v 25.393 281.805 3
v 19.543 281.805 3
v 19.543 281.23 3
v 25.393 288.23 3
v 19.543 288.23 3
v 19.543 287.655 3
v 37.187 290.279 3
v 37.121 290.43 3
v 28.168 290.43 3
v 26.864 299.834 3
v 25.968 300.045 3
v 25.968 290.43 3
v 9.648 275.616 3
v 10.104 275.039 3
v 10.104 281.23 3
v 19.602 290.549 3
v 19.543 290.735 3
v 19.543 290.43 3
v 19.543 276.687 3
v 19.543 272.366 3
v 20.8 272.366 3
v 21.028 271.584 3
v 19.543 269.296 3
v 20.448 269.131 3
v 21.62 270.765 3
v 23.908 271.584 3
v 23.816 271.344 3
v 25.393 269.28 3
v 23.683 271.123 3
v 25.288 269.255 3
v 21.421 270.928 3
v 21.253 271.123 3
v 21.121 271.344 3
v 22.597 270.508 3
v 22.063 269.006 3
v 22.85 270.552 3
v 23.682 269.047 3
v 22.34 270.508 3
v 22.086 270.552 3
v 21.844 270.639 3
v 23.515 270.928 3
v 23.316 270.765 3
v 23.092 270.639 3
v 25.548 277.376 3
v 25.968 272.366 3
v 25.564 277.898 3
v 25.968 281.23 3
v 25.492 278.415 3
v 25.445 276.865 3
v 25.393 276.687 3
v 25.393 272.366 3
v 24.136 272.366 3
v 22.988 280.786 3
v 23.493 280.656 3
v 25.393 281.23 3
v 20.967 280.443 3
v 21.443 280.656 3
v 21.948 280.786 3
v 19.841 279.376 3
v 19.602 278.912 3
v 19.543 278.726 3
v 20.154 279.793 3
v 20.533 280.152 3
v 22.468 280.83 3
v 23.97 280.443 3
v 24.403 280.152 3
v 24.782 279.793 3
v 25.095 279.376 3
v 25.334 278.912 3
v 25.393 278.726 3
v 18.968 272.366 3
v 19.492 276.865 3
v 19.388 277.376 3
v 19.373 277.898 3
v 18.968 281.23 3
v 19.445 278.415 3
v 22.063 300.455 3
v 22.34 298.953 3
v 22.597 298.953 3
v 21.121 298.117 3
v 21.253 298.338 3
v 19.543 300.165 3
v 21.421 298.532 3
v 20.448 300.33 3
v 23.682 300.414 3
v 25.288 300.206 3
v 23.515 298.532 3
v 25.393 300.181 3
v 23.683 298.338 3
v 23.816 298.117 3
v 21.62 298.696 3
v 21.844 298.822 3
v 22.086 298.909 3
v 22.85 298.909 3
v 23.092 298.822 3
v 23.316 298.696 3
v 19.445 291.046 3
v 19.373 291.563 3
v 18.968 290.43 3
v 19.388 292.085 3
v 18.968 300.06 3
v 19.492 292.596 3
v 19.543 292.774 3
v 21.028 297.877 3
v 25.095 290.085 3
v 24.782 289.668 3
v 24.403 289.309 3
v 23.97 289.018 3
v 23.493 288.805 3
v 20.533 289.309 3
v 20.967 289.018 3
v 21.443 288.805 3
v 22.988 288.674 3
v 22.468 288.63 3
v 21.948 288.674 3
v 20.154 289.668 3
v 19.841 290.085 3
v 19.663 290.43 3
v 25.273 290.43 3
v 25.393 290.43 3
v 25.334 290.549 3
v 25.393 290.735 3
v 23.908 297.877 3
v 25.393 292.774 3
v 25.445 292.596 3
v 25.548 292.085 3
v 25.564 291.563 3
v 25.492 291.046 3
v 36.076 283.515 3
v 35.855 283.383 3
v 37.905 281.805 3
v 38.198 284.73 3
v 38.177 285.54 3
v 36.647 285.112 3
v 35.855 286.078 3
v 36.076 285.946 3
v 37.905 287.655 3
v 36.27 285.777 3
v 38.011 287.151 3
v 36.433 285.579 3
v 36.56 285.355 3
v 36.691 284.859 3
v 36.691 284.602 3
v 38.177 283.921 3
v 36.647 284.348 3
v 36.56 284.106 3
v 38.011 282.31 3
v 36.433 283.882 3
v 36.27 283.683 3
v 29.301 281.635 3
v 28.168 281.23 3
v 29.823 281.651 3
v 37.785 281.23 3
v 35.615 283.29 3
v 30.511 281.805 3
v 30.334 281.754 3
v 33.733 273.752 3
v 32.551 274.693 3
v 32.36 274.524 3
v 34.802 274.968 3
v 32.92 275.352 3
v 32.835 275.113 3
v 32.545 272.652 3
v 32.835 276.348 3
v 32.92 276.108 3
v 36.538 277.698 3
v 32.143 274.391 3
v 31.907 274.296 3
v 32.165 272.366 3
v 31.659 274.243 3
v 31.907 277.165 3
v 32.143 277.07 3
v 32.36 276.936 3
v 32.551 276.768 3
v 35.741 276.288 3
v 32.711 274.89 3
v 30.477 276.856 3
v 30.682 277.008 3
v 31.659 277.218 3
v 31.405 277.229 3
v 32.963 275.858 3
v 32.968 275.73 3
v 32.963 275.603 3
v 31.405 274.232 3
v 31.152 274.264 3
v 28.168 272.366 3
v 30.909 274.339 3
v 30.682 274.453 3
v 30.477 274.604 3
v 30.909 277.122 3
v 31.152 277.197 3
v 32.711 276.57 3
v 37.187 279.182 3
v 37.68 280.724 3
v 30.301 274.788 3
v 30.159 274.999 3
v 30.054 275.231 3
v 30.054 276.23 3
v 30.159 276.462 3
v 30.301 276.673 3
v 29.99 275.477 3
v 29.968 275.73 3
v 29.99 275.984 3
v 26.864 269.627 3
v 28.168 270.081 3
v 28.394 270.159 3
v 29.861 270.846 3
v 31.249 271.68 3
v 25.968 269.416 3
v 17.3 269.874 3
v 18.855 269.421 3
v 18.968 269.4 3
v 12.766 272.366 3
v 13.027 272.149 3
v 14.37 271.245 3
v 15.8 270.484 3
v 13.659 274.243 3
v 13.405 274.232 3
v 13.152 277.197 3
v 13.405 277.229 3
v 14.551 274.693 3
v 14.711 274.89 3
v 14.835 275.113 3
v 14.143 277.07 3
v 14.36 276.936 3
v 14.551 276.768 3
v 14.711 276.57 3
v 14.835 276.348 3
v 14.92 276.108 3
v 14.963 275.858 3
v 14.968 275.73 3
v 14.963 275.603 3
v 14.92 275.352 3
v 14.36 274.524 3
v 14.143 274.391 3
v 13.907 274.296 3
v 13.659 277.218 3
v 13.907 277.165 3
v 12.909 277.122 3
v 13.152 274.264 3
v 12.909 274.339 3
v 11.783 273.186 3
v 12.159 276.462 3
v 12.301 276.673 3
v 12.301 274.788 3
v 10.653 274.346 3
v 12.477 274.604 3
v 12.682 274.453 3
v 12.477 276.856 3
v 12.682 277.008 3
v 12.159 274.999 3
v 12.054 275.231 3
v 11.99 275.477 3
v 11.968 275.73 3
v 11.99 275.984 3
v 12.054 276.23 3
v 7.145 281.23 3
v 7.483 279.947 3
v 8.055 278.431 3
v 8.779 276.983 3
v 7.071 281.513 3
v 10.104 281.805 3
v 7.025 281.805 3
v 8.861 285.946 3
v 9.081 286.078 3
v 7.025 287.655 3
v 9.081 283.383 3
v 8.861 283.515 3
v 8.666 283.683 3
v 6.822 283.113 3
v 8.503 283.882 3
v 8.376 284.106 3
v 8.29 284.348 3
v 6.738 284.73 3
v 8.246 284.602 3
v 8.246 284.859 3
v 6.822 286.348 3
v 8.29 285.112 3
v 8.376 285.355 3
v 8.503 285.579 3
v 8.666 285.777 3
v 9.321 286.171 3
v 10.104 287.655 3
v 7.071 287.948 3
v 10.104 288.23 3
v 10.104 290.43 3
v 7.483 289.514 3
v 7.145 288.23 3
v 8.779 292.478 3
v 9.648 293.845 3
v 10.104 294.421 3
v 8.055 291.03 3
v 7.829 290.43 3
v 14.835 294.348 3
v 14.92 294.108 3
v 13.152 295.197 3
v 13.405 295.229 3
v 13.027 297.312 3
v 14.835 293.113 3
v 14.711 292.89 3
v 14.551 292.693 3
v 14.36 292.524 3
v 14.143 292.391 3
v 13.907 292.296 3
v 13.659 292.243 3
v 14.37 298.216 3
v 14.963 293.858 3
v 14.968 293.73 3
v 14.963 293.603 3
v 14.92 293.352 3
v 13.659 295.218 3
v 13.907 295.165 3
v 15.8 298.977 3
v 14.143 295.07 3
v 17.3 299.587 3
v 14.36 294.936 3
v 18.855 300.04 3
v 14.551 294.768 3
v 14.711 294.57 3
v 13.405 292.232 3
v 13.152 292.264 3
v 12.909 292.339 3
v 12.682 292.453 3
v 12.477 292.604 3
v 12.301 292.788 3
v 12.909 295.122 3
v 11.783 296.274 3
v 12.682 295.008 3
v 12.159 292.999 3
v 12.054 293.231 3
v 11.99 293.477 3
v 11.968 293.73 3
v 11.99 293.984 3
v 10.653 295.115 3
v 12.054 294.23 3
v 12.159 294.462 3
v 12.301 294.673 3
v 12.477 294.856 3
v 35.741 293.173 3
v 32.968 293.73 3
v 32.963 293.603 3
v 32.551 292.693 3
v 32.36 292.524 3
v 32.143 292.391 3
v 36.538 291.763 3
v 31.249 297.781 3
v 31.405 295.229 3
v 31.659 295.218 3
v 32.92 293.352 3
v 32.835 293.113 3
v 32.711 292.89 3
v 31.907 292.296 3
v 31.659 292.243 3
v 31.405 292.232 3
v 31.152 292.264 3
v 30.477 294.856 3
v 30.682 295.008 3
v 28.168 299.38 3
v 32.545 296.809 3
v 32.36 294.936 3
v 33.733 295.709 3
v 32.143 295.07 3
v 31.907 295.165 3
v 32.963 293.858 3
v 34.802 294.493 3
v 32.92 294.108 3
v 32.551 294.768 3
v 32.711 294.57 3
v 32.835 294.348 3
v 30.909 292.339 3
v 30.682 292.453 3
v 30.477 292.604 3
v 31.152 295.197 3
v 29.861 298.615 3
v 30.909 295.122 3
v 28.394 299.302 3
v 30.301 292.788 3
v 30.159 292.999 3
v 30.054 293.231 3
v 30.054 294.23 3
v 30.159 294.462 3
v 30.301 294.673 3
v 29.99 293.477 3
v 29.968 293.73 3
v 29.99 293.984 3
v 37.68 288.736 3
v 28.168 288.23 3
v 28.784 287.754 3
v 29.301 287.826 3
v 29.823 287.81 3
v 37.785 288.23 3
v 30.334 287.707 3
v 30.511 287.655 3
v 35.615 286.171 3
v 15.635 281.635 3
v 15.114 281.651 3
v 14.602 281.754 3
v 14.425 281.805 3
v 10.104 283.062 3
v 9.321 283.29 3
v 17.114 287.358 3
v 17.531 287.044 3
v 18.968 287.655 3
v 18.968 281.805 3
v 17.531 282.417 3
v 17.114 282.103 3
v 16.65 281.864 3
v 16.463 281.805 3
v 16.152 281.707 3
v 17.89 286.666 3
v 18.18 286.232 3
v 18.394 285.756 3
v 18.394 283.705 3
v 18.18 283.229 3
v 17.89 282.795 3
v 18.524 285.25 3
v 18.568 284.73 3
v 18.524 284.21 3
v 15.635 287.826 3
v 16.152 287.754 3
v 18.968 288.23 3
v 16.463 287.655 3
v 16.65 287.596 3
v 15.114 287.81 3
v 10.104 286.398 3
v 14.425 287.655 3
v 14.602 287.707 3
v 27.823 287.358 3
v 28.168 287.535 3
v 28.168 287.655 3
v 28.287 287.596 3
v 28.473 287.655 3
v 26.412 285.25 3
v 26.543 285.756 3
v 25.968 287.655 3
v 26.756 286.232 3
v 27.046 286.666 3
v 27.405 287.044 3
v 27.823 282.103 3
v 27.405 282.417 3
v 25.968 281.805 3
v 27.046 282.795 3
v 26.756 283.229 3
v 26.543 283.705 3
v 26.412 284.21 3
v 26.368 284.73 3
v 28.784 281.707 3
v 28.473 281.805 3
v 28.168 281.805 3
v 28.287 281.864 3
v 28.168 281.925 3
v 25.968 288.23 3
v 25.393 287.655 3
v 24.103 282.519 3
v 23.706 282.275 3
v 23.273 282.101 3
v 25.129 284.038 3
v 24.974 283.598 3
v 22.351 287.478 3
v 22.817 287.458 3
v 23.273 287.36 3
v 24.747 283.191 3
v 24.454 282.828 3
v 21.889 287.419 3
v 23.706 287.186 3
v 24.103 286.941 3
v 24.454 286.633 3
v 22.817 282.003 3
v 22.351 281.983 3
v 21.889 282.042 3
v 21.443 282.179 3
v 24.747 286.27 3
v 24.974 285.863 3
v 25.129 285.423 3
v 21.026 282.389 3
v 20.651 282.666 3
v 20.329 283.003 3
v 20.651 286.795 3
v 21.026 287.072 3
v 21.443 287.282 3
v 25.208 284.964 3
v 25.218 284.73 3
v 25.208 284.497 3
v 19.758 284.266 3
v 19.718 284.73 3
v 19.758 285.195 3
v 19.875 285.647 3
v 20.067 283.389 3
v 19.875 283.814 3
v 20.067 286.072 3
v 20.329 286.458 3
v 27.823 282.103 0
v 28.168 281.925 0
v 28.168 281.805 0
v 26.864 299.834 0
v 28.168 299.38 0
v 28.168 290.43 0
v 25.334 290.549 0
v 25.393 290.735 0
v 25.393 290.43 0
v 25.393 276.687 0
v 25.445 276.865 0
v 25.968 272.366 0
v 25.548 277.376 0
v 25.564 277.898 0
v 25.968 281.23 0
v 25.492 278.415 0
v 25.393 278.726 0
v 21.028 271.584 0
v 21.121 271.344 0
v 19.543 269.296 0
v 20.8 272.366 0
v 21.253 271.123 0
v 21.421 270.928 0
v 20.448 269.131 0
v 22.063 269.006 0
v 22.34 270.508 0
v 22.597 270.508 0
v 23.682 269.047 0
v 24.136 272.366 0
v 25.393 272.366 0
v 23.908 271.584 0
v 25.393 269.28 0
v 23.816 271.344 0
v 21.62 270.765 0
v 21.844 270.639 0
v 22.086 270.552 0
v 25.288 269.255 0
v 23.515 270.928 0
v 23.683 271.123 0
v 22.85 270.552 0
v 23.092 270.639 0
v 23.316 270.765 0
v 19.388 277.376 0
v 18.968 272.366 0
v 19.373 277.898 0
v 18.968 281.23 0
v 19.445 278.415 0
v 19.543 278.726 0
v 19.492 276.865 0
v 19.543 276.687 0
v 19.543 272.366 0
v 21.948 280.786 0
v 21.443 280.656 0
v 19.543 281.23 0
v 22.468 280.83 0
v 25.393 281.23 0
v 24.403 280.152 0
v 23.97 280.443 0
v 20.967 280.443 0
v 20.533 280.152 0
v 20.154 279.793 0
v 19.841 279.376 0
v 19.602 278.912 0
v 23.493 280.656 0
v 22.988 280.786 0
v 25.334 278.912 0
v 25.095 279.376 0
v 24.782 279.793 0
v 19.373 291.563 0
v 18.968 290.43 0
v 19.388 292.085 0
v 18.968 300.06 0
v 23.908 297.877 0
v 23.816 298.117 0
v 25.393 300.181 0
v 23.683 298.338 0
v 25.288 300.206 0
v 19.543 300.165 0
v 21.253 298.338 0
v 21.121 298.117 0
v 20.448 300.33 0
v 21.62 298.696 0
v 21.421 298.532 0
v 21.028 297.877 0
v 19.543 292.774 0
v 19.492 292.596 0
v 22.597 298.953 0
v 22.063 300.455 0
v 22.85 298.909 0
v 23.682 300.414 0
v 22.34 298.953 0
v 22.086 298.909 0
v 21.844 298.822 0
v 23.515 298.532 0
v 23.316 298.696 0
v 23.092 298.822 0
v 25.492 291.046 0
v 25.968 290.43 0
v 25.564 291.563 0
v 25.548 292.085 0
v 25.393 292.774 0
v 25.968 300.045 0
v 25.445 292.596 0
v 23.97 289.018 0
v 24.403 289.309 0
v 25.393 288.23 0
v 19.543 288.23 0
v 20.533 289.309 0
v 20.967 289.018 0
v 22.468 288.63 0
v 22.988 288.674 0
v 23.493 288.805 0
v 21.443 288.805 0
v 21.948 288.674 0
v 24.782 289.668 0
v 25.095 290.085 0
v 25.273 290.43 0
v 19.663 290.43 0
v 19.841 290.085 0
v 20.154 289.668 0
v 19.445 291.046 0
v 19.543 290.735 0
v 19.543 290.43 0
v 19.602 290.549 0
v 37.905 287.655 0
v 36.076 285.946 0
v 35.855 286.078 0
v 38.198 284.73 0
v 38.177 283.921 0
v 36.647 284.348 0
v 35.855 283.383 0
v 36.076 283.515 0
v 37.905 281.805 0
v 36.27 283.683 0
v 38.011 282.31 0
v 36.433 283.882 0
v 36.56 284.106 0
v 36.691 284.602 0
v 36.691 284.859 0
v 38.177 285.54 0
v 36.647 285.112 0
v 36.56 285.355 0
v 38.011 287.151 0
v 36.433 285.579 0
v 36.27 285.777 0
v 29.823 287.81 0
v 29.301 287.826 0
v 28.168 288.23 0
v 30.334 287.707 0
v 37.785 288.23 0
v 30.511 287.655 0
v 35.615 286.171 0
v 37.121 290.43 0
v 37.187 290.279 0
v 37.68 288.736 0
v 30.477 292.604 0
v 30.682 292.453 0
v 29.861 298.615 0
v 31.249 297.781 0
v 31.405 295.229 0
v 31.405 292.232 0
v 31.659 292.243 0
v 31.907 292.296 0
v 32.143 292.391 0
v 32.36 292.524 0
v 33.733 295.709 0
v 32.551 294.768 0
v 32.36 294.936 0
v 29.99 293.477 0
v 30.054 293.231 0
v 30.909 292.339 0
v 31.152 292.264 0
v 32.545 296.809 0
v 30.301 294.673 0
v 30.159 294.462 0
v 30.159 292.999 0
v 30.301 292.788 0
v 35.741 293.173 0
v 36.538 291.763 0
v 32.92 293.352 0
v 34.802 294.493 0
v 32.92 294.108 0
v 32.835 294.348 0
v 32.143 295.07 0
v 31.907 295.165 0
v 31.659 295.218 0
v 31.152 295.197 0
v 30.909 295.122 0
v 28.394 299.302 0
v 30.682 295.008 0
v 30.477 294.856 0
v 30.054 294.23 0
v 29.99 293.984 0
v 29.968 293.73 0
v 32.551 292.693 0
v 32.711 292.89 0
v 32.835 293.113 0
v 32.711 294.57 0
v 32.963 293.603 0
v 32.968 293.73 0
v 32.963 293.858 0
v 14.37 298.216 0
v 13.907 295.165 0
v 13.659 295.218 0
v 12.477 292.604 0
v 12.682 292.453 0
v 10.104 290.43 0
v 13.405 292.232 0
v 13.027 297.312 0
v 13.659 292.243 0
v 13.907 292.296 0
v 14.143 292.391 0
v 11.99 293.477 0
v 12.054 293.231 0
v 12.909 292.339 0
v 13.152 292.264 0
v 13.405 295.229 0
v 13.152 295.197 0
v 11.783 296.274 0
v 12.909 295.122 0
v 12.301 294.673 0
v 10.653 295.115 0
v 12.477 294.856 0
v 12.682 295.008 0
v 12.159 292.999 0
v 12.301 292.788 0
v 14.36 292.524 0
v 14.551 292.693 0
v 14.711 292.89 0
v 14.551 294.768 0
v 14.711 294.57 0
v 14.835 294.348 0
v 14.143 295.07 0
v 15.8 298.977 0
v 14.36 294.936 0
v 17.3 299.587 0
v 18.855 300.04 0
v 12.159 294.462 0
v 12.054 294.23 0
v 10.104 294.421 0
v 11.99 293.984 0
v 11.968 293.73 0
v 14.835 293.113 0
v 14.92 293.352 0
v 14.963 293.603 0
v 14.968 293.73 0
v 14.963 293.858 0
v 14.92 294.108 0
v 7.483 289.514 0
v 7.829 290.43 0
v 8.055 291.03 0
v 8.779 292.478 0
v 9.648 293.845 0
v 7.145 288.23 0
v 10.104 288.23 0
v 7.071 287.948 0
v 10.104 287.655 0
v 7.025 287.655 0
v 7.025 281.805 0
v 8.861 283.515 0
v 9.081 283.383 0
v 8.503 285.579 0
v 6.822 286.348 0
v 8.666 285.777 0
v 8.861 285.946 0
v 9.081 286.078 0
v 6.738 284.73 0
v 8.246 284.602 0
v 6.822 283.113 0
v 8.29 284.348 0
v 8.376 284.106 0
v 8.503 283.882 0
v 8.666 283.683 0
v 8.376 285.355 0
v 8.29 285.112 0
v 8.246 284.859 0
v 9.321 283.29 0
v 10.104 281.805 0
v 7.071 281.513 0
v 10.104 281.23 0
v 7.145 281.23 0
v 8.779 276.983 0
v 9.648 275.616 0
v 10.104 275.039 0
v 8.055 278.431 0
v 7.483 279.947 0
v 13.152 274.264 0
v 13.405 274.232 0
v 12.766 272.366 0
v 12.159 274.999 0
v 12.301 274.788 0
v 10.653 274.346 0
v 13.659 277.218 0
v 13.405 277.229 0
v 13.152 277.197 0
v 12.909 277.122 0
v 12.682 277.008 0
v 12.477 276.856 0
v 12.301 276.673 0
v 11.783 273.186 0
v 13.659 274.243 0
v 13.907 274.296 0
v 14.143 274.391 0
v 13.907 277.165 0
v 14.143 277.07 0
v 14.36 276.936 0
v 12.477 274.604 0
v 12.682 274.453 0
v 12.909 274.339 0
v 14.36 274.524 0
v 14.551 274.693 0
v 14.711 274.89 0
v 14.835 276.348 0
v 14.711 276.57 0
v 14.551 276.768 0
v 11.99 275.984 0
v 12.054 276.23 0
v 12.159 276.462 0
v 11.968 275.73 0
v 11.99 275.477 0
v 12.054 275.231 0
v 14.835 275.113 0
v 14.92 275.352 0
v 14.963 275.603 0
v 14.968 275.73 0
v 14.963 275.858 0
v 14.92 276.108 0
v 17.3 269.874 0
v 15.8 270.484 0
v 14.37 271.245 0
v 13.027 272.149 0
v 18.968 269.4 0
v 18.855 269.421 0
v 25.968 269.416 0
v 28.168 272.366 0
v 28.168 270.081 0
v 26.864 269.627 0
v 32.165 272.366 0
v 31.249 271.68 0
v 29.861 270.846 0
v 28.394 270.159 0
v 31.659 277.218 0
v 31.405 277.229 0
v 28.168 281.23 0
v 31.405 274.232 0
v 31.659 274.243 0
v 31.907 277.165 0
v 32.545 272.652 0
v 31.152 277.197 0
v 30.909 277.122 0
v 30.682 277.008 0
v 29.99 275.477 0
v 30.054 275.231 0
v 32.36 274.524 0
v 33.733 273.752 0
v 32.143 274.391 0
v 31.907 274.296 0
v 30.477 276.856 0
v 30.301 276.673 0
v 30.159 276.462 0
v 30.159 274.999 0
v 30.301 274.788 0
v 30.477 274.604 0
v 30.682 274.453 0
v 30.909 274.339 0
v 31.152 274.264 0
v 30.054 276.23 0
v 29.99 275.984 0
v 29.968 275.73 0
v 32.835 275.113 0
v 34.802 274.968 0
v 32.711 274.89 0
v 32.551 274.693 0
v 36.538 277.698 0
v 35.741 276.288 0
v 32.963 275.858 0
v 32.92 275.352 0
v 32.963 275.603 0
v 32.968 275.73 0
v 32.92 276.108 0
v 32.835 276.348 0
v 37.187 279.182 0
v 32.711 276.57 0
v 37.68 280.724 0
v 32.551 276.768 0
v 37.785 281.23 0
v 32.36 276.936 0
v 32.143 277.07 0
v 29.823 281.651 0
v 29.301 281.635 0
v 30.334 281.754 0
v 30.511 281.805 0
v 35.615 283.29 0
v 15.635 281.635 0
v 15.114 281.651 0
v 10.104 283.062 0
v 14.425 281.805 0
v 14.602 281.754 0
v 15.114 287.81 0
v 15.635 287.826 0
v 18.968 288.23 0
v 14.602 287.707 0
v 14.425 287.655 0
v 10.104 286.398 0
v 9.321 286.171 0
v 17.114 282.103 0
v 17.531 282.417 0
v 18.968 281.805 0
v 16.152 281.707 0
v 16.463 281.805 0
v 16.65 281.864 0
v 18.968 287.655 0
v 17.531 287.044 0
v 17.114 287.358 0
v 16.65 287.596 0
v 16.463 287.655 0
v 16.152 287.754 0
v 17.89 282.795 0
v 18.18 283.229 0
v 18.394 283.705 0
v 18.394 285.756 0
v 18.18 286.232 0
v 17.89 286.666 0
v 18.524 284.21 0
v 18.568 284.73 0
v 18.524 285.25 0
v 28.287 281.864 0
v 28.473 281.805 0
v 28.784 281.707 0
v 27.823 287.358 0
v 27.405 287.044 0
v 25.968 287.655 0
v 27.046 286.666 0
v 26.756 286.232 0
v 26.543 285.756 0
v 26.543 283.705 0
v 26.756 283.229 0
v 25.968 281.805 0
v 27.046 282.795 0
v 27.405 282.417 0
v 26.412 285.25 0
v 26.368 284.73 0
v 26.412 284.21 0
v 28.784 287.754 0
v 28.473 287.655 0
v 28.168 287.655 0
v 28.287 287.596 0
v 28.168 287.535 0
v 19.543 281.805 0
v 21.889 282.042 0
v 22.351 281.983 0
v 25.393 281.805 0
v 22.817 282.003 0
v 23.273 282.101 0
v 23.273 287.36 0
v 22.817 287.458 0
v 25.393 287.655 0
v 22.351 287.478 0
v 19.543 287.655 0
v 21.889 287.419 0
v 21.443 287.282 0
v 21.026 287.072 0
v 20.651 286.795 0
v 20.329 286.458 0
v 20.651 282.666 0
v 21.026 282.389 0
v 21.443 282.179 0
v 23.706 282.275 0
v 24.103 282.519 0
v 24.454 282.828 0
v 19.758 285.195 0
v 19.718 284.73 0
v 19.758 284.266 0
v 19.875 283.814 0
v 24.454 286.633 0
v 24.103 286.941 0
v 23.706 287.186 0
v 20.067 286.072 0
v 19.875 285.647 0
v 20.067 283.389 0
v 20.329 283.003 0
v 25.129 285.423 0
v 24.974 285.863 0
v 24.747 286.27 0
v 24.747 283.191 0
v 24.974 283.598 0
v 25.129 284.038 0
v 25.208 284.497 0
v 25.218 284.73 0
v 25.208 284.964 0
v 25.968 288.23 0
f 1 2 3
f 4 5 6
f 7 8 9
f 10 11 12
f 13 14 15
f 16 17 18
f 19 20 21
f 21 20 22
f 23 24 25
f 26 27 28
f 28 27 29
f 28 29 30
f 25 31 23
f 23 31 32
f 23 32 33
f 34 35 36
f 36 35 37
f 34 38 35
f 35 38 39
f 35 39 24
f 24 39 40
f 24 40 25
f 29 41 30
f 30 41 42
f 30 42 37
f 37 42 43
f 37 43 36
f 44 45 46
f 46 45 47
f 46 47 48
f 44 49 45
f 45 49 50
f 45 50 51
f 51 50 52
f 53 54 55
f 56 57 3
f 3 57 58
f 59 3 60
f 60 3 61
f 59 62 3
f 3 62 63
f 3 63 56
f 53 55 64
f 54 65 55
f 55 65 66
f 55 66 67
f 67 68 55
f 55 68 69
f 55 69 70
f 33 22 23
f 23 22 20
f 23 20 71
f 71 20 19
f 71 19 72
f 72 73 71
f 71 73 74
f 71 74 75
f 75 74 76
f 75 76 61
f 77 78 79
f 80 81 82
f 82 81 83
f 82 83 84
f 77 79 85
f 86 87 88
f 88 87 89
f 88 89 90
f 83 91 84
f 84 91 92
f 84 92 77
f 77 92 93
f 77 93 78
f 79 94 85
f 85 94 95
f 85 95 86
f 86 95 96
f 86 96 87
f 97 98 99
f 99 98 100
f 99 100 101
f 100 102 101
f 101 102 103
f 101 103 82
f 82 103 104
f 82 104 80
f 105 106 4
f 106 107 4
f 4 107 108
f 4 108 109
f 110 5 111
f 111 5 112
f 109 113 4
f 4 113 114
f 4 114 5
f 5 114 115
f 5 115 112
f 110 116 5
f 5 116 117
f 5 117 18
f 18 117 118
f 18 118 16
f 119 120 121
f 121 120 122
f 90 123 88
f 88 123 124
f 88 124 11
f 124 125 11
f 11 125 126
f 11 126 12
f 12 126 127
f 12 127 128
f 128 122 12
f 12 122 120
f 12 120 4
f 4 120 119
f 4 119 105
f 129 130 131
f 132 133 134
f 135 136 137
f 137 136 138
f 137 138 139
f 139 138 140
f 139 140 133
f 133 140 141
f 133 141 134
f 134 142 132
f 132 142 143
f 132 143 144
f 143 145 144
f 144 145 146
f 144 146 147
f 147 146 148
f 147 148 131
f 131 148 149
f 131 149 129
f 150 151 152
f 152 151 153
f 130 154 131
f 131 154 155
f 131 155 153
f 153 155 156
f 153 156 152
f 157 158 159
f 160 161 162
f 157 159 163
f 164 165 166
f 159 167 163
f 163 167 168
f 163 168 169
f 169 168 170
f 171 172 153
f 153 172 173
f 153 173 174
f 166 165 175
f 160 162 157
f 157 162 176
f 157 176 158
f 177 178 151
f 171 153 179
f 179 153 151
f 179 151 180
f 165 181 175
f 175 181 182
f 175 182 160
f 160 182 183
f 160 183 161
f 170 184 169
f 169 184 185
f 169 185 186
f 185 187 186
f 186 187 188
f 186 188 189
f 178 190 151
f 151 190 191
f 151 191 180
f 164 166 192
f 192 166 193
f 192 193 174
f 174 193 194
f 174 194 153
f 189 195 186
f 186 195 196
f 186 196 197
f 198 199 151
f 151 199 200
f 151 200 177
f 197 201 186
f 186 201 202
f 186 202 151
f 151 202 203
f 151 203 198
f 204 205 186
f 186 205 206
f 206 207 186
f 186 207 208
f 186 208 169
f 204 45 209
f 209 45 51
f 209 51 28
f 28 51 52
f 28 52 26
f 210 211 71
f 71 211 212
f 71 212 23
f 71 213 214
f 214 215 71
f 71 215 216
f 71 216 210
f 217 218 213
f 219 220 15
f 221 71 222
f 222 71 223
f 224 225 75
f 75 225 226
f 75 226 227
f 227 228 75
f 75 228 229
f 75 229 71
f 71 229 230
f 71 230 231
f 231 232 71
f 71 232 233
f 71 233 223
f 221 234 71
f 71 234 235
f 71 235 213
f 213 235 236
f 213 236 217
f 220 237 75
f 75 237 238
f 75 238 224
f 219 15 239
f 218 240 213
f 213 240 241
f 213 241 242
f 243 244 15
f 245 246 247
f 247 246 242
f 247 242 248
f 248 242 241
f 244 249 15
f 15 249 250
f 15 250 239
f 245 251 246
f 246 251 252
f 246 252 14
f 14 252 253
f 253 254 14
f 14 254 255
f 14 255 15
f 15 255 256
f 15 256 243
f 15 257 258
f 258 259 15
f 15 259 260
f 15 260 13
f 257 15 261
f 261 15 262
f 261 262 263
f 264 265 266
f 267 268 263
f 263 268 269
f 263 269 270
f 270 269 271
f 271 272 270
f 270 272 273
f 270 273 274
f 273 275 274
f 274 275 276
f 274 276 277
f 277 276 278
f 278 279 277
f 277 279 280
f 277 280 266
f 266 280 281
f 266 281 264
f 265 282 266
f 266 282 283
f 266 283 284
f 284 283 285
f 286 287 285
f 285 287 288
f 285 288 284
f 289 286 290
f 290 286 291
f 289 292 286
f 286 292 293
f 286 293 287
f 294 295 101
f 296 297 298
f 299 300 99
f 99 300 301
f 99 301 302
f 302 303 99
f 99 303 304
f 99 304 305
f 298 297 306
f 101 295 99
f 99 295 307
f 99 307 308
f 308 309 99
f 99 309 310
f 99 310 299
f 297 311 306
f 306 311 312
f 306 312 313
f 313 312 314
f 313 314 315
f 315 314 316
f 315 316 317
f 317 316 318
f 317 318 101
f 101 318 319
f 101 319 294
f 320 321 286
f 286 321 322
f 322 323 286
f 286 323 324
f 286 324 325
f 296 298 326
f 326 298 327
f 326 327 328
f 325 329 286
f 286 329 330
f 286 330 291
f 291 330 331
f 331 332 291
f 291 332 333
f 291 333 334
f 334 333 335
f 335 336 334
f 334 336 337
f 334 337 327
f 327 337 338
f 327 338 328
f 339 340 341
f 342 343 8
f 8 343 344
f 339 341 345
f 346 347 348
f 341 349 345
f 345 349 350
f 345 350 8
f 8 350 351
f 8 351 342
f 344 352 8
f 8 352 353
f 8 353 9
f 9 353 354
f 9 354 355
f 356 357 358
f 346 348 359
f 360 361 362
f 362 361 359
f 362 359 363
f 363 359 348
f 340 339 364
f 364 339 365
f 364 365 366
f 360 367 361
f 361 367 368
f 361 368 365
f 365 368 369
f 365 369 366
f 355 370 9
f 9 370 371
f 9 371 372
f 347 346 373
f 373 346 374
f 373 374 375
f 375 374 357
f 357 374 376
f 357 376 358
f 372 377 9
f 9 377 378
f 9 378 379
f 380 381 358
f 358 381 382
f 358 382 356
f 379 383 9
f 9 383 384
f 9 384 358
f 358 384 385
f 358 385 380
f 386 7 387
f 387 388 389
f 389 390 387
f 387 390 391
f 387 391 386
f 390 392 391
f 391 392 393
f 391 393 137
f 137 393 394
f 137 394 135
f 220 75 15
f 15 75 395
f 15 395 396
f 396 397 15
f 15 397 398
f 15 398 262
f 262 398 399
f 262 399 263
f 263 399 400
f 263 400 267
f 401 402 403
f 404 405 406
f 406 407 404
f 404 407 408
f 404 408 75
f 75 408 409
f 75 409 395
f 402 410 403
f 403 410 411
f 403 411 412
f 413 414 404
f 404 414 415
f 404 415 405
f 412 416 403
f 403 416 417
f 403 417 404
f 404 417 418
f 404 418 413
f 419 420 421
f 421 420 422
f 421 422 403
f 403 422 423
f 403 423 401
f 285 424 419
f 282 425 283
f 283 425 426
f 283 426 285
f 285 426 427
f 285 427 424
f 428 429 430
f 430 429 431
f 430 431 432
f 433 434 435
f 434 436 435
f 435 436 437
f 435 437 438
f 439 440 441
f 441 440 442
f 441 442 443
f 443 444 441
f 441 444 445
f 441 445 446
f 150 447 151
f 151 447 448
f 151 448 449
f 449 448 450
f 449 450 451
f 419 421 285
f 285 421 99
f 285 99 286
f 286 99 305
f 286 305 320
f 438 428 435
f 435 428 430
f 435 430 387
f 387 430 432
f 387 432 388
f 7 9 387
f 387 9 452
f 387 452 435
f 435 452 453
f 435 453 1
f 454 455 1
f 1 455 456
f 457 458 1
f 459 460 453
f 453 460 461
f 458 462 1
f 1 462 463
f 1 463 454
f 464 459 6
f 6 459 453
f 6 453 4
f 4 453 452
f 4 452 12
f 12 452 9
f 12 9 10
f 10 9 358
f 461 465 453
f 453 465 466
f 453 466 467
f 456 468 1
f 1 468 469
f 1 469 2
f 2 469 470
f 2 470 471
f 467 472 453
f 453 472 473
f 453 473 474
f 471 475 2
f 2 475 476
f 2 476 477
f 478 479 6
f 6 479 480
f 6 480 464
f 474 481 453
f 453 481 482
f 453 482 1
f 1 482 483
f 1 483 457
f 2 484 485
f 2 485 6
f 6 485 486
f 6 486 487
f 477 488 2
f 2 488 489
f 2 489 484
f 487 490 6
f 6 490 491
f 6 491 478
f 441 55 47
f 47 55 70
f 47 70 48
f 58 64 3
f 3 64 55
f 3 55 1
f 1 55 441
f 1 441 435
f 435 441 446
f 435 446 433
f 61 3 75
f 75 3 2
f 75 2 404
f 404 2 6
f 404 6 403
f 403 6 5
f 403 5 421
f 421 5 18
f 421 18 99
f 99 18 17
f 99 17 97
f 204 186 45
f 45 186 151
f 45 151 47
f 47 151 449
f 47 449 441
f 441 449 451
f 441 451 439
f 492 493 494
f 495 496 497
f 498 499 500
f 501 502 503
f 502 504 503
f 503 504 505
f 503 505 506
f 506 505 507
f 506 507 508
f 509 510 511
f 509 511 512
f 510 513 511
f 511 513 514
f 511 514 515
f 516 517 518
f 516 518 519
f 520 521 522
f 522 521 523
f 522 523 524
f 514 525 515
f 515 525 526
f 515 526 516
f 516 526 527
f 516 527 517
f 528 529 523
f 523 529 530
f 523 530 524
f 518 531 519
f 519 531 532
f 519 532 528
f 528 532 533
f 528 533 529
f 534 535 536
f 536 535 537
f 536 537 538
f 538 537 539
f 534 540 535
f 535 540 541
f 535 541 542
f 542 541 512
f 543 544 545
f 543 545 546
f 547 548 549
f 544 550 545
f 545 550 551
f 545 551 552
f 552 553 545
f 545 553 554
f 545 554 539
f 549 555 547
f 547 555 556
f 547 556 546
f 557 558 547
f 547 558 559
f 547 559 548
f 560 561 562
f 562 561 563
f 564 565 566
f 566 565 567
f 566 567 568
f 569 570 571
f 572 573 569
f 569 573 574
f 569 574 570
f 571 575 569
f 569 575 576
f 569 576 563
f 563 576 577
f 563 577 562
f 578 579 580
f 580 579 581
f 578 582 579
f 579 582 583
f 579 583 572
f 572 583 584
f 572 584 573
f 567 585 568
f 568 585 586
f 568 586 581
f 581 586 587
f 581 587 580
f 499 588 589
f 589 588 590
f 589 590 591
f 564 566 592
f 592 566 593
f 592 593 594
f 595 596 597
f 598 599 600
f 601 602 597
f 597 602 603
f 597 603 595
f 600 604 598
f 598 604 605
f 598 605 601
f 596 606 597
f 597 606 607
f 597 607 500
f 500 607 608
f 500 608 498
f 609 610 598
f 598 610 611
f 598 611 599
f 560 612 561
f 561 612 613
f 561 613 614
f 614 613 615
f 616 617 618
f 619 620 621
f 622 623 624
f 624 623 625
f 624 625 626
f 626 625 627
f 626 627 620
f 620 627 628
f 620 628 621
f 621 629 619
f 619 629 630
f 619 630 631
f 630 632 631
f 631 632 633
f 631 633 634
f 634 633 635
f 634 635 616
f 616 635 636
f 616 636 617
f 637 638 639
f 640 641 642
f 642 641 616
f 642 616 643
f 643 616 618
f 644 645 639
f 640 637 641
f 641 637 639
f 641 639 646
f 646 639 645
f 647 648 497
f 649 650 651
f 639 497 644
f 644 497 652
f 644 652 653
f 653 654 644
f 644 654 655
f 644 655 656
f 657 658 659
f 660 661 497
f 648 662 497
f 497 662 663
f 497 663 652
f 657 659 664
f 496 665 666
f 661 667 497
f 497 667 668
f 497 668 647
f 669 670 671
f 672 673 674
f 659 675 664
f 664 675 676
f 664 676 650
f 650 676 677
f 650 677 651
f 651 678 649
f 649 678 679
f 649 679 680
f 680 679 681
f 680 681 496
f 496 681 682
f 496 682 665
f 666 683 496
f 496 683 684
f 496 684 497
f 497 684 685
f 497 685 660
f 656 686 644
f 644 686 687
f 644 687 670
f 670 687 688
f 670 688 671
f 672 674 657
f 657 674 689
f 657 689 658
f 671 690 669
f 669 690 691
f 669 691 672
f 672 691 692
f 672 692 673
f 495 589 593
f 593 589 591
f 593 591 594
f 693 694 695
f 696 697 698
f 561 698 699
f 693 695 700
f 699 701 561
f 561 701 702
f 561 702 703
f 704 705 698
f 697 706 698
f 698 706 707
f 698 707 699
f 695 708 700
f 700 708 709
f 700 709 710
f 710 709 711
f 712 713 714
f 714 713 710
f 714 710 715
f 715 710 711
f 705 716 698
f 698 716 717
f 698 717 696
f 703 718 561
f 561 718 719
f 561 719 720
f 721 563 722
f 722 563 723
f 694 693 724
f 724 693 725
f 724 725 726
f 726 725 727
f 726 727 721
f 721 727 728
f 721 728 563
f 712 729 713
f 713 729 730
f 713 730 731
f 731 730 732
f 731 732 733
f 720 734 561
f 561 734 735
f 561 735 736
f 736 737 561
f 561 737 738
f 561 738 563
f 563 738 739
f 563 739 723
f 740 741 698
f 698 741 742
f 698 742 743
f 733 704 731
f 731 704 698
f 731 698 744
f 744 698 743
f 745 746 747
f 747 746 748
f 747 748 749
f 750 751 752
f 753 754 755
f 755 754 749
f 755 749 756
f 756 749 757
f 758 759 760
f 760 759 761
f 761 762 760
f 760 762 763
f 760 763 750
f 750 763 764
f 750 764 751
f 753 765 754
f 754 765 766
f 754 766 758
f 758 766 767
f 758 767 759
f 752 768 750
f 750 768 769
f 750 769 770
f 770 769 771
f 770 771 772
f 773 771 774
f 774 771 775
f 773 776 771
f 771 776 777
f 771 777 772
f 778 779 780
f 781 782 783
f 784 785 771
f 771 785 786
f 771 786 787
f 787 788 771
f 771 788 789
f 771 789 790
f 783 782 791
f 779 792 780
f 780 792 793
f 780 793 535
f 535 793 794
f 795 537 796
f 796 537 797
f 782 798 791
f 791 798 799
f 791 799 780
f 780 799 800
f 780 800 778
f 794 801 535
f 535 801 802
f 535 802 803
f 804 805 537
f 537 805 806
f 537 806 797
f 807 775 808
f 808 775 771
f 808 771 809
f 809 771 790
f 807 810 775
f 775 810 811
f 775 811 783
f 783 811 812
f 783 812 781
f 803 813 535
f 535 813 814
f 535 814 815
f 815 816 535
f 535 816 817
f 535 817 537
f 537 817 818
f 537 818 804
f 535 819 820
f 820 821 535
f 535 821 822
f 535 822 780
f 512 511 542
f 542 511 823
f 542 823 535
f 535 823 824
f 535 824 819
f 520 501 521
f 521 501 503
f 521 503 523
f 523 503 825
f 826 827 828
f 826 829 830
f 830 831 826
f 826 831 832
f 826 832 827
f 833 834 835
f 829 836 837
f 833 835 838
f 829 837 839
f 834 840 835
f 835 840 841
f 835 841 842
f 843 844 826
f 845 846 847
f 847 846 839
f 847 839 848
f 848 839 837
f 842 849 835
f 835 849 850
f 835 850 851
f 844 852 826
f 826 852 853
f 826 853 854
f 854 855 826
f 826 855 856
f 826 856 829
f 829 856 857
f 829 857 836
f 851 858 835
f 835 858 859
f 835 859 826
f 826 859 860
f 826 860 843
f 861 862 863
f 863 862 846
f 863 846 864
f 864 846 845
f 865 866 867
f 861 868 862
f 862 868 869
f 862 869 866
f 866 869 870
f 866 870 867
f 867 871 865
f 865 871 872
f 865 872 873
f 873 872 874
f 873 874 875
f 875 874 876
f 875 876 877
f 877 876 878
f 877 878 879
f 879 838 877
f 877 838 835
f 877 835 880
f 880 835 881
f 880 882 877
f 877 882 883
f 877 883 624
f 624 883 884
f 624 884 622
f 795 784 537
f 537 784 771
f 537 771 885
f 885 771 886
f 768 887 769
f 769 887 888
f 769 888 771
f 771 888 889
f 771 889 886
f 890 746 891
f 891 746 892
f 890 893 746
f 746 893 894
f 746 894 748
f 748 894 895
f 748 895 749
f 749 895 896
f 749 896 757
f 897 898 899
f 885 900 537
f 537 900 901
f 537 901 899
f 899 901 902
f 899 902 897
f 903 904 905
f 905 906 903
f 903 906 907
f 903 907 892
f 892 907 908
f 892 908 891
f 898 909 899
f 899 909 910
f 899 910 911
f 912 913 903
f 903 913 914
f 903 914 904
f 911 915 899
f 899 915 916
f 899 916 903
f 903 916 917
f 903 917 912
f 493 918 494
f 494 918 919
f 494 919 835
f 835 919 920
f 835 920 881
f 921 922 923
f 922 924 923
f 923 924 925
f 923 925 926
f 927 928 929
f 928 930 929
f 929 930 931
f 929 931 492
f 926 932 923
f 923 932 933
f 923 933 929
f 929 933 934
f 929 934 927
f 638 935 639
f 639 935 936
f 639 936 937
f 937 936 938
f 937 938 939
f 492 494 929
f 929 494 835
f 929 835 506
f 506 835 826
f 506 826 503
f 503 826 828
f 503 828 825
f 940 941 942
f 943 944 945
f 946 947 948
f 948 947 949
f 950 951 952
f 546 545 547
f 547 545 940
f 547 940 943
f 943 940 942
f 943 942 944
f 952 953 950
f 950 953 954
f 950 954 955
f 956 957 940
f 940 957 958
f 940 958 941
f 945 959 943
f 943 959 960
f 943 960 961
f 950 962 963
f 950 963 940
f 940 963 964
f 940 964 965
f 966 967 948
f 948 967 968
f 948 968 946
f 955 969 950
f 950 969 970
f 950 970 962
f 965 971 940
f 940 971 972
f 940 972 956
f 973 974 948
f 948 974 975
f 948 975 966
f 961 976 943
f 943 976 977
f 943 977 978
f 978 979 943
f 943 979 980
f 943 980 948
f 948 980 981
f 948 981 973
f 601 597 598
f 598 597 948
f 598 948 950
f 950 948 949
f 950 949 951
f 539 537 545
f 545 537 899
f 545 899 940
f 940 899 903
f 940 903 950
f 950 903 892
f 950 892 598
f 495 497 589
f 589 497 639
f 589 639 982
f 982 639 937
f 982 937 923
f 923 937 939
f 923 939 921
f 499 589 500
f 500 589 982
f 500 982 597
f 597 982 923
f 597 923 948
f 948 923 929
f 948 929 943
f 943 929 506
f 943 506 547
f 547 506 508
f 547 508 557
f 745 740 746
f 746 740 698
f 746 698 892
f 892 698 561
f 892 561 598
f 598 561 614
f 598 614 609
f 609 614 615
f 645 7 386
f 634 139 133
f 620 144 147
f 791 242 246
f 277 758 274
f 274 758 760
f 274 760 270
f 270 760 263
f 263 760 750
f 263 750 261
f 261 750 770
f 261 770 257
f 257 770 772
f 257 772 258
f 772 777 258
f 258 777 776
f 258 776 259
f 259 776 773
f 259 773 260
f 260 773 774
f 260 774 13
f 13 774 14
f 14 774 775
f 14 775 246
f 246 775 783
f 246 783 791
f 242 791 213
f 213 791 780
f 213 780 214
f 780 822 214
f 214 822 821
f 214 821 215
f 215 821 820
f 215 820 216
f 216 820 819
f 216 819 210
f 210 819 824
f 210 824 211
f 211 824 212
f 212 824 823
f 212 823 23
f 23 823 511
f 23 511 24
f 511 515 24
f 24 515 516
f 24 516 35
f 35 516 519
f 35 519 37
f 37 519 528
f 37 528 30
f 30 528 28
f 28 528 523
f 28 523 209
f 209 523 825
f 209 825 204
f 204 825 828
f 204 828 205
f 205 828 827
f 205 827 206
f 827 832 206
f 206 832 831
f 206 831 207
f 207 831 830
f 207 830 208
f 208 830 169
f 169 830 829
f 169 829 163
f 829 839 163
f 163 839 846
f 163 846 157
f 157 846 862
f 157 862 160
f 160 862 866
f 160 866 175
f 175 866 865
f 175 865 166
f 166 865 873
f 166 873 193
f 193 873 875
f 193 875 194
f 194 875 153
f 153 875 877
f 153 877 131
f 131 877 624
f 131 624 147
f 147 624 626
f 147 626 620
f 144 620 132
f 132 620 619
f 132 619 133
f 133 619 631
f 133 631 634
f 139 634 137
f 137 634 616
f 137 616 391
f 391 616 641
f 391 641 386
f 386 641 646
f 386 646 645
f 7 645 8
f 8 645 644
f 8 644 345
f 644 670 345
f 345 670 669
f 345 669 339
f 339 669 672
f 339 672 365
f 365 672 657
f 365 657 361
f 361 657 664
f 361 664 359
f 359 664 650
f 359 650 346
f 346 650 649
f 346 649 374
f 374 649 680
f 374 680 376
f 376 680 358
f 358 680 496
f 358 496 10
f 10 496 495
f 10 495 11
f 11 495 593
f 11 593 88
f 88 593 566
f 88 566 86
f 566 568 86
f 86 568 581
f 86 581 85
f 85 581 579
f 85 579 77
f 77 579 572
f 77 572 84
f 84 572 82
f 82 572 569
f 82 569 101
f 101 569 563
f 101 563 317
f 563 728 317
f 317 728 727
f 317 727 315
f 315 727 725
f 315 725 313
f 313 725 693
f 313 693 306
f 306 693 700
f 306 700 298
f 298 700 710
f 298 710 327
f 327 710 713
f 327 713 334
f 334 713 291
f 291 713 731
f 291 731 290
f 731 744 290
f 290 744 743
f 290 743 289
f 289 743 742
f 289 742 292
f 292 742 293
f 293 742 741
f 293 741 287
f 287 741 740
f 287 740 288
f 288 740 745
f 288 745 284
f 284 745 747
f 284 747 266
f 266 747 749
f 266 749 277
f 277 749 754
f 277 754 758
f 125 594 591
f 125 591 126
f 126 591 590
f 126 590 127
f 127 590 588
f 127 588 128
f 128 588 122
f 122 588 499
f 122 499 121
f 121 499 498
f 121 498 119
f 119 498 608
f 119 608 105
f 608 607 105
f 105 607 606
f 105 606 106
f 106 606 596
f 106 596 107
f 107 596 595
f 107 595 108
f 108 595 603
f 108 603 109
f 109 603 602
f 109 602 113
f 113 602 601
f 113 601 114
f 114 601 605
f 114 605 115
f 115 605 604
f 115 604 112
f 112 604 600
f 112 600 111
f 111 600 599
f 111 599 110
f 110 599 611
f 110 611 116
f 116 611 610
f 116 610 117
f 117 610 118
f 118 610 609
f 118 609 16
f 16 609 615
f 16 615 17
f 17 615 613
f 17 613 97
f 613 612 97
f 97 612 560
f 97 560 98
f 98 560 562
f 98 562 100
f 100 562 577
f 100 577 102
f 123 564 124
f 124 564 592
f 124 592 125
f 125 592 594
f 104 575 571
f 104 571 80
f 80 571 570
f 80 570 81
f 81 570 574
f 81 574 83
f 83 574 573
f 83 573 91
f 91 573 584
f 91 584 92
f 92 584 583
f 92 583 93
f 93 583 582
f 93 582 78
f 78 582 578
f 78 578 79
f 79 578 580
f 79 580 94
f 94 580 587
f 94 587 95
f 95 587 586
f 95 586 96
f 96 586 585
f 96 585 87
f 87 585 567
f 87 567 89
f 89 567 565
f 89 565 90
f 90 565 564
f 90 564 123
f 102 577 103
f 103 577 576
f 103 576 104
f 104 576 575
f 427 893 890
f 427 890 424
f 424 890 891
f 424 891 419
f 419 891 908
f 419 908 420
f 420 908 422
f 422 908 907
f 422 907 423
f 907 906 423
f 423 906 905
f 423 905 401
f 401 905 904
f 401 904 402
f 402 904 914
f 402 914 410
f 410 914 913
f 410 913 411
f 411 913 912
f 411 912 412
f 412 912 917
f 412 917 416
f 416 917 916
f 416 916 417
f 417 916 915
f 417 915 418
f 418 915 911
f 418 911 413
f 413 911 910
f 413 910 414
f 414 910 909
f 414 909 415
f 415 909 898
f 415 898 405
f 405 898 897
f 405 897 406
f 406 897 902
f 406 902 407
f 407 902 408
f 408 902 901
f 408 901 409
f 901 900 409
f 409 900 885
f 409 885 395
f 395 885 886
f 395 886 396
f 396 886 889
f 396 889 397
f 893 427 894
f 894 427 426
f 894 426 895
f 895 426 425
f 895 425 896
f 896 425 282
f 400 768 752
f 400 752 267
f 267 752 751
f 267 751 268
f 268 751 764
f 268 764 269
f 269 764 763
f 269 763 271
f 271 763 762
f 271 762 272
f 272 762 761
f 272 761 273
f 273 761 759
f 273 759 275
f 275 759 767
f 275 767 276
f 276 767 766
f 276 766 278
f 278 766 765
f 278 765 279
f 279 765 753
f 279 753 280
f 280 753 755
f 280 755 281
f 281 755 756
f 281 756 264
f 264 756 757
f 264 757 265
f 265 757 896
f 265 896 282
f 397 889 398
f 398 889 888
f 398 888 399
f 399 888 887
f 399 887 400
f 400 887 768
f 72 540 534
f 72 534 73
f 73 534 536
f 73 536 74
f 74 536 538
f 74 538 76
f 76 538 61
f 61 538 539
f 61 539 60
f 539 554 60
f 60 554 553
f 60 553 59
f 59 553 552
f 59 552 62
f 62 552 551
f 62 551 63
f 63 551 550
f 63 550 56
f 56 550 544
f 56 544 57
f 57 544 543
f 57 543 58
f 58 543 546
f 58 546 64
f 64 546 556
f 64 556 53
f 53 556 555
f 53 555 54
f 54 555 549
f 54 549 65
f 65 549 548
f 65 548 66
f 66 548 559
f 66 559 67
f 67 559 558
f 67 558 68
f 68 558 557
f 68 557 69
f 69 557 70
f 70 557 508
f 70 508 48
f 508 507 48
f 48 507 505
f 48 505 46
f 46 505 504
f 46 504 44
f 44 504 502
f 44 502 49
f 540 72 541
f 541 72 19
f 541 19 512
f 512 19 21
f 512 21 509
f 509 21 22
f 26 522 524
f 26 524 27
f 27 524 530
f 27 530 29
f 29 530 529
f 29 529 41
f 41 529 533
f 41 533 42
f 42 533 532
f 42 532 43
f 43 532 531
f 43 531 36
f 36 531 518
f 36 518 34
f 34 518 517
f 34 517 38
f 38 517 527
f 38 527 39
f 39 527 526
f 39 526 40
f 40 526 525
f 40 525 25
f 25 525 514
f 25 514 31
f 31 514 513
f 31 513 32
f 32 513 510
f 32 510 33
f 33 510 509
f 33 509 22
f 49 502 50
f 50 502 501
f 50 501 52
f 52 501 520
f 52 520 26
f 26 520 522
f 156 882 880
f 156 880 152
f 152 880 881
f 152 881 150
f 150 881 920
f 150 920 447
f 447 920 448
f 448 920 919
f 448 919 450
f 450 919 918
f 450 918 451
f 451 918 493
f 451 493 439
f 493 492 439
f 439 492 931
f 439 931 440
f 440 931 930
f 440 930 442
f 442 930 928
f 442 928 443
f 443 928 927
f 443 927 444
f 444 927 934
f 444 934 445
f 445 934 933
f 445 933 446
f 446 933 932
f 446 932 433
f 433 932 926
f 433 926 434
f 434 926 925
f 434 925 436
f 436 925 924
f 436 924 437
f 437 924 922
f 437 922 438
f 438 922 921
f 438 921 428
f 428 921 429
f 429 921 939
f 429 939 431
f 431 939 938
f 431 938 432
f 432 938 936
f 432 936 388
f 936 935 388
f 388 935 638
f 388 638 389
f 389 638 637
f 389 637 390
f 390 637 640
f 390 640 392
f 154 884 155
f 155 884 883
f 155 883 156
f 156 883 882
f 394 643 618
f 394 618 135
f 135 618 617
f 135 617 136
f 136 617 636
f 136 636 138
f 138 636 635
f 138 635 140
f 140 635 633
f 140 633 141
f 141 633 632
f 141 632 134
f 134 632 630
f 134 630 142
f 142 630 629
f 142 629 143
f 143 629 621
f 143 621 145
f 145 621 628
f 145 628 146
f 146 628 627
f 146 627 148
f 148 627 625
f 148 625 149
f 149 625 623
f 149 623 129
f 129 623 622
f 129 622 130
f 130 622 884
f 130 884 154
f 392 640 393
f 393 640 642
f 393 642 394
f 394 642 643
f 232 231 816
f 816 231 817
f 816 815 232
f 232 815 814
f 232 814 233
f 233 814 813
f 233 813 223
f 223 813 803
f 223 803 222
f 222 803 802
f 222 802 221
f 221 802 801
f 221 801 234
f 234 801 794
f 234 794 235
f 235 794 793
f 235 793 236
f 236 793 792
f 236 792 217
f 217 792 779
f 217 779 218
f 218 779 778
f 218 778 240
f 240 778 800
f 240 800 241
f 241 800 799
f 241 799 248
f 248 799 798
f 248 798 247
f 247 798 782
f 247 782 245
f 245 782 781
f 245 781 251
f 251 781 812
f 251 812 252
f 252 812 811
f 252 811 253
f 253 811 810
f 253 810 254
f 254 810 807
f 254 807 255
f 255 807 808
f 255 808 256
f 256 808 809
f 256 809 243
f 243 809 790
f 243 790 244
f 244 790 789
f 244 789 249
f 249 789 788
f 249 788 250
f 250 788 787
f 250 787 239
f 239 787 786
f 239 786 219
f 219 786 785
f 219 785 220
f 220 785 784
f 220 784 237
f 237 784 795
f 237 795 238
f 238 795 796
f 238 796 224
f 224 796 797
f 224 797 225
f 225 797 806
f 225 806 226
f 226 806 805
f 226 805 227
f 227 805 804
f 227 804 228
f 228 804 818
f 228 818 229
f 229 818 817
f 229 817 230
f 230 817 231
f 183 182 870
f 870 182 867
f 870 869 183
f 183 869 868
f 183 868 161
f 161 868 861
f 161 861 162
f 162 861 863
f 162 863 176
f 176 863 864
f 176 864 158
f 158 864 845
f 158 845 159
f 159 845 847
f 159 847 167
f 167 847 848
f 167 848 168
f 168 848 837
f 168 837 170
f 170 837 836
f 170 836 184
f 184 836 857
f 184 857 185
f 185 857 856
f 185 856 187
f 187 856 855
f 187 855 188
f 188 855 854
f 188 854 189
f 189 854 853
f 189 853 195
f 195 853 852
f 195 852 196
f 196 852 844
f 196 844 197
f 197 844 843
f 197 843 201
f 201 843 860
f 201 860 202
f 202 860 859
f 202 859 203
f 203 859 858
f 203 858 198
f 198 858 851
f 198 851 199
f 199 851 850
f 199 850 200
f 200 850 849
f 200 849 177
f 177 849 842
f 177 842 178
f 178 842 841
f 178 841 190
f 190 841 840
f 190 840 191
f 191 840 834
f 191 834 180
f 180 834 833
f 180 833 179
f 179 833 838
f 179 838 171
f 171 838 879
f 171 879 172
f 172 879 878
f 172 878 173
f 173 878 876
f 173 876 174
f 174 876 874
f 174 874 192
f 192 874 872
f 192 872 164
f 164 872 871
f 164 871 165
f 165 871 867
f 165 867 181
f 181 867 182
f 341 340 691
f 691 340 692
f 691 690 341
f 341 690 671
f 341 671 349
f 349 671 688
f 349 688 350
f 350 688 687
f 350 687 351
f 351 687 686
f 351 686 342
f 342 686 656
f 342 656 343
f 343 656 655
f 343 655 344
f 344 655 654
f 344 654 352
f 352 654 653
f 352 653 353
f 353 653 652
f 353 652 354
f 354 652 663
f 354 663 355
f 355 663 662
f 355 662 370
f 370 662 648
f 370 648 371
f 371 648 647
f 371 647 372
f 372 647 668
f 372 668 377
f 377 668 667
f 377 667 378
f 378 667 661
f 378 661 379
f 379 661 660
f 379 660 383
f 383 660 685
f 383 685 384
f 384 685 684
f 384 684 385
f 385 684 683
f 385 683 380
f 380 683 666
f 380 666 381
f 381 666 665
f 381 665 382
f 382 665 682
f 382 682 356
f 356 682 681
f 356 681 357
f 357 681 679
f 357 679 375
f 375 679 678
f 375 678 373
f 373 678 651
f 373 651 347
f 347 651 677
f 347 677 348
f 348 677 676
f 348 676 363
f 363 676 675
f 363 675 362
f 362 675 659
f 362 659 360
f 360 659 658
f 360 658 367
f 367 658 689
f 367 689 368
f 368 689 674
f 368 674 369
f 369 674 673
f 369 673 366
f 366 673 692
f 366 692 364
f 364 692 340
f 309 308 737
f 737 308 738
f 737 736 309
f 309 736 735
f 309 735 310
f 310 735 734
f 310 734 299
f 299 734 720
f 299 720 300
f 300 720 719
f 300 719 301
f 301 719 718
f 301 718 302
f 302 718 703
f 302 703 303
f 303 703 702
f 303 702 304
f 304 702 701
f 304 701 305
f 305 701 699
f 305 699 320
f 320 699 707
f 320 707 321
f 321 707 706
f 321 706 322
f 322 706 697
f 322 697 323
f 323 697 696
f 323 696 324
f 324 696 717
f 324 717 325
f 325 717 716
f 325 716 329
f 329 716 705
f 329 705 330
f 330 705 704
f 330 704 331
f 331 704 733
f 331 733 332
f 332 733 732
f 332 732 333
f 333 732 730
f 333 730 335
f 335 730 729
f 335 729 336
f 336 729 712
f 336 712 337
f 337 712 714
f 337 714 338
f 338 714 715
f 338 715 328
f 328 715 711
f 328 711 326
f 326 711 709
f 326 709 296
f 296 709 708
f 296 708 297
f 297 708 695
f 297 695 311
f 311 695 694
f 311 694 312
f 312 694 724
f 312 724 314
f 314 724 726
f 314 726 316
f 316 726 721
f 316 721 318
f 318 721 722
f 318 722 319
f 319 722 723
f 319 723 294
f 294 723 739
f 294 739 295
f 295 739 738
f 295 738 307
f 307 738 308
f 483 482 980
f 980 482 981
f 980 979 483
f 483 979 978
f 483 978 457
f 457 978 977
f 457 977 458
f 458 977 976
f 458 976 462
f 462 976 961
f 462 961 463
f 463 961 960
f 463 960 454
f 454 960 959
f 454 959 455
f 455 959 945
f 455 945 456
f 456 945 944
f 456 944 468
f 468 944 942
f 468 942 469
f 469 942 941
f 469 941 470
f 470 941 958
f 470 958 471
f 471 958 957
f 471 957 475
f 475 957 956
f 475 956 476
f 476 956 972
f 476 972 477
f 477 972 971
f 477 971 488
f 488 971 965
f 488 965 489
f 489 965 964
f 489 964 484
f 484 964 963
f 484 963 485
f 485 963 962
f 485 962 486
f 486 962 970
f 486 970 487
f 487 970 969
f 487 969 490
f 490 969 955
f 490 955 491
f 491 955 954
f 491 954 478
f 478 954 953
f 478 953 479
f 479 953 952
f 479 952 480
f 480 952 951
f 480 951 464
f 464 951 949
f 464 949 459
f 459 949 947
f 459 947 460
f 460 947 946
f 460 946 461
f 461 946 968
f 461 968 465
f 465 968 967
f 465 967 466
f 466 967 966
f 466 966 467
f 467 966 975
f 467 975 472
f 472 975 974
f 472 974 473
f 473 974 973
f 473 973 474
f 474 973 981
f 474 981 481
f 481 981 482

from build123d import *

# Parameters (mm, degrees)
MODEL_R                 = 15.73
MODEL_R_2               = 1.5
MODEL_R_3               = 2.75
SALIENTE_EXTRUIR1_DEPTH = 3


with BuildPart() as part:
    # Model → Saliente-Extruir1 (new body)
    with BuildSketch(Plane.XY):
        with Locations((22.468172618, 284.73044756)):
            Circle(MODEL_R)
        with Locations((13.468172618, 275.73044756)):
            Circle(MODEL_R_2, mode=Mode.SUBTRACT)
        with Locations((31.468172618, 275.73044756)):
            Circle(MODEL_R_2, mode=Mode.SUBTRACT)
        with Locations((31.468172618, 293.73044756)):
            Circle(MODEL_R_2, mode=Mode.SUBTRACT)
        with Locations((13.468172618, 293.73044756)):
            Circle(MODEL_R_2, mode=Mode.SUBTRACT)
        with Locations((22.468172618, 284.73044756)):
            Circle(MODEL_R_3, mode=Mode.SUBTRACT)
        with BuildLine():
            Line((23.908463874, 297.877369736), (25.444774548, 292.59638113))
            ThreePointArc((25.444774548, 292.59638113), (22.468172618, 288.63044756), (19.491570687, 292.59638113))
            Line((19.491570687, 292.59638113), (21.027881361, 297.877369736))
            ThreePointArc((21.027881361, 297.877369736), (22.468172618, 298.958369621), (23.908463874, 297.877369736))
        make_face(mode=Mode.SUBTRACT)
        with BuildLine():
            Line((9.321250442, 286.170738816), (14.602239048, 287.70704949))
            ThreePointArc((14.602239048, 287.70704949), (18.568172618, 284.73044756), (14.602239048, 281.753845629))
            Line((14.602239048, 281.753845629), (9.321250442, 283.290156303))
            ThreePointArc((9.321250442, 283.290156303), (8.240250556, 284.73044756), (9.321250442, 286.170738816))
        make_face(mode=Mode.SUBTRACT)
        with BuildLine():
            Line((21.027881361, 271.583525384), (19.491570687, 276.86451399))
            ThreePointArc((19.491570687, 276.86451399), (22.468172618, 280.83044756), (25.444774548, 276.86451399))
            Line((25.444774548, 276.86451399), (23.908463874, 271.583525384))
            ThreePointArc((23.908463874, 271.583525384), (22.468172618, 270.502525498), (21.027881361, 271.583525384))
        make_face(mode=Mode.SUBTRACT)
        with BuildLine():
            Line((35.615094794, 283.290156303), (30.334106188, 281.753845629))
            ThreePointArc((30.334106188, 281.753845629), (26.368172618, 284.73044756), (30.334106188, 287.70704949))
            Line((30.334106188, 287.70704949), (35.615094794, 286.170738816))
            ThreePointArc((35.615094794, 286.170738816), (36.696094679, 284.73044756), (35.615094794, 283.290156303))
        make_face(mode=Mode.SUBTRACT)
    extrude(amount=SALIENTE_EXTRUIR1_DEPTH)


solid = part.part
